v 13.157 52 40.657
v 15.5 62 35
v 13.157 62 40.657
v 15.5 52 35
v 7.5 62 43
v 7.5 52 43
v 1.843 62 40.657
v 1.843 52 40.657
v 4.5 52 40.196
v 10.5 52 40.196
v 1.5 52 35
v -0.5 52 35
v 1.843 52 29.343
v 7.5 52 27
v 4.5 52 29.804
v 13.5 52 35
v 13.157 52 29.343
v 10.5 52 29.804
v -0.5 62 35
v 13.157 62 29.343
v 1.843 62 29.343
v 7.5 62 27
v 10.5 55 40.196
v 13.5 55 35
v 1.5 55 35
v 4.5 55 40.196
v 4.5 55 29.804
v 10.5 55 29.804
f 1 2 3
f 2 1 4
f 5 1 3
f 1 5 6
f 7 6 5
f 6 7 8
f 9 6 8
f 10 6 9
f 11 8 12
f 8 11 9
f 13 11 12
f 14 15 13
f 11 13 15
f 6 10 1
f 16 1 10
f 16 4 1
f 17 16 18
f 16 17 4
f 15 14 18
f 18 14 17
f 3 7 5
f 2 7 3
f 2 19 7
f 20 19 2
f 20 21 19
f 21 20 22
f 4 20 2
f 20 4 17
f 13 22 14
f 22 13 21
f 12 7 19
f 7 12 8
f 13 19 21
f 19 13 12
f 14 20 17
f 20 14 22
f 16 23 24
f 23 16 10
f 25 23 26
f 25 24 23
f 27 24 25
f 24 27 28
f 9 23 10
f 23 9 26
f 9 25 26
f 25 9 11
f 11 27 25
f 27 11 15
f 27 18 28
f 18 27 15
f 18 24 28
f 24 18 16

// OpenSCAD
//rotator

difference(){  
translate([15/2,62,35]) rotate([90,0,0]) cylinder(h=10,r=8,$fn=8); 
#translate([15/2,55,35]) rotate([90,0,0]) cylinder(h=3,r=6,$fn=6); 
};
